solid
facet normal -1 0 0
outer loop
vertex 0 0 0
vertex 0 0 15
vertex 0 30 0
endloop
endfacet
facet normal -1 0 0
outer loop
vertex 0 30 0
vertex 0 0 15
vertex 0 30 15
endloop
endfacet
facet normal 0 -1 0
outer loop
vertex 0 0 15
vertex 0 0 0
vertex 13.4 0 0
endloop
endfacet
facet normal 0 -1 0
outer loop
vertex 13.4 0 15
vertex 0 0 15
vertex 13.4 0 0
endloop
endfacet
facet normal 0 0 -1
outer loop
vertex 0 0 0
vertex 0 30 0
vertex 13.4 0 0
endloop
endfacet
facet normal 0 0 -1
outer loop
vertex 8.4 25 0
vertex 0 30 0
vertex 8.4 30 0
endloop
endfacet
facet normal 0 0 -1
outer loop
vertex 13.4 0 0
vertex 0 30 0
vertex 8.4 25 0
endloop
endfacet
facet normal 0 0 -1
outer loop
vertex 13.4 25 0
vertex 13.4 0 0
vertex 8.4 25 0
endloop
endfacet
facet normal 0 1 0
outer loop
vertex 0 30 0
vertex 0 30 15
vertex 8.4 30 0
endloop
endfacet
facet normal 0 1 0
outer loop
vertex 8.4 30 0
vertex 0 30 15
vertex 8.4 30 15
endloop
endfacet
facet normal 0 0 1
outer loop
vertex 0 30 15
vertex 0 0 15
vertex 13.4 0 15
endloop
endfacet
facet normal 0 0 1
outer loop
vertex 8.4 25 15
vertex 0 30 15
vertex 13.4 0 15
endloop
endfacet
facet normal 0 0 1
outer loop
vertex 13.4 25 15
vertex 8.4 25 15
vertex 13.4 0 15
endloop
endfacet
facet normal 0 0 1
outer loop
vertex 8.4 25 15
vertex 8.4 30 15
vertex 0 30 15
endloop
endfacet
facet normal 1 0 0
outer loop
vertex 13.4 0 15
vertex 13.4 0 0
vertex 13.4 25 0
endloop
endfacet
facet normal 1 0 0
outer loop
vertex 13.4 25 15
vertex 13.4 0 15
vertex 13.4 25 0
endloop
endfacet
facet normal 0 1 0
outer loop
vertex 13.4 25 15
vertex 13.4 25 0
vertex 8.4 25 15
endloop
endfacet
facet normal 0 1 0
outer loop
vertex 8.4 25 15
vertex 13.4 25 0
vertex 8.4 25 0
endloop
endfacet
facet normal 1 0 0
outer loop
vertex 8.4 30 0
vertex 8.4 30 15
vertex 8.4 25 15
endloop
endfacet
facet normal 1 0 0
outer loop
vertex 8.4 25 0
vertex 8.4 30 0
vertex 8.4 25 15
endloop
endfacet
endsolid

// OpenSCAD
frame_width = 217;

pixel_width = 16.6;
pixel_wall = 1;
pixel_height = 20;

pixels_x = 12;
pixels_y = 10;

holder = 5;

difference() {
cube([(frame_width - pixel_width * pixels_x - pixel_wall) / 2 + holder, (frame_width - pixel_width * pixels_y - pixel_wall) / 2 + holder, pixel_height-5]);
translate([(frame_width - pixel_width * pixels_x - pixel_wall) / 2, (frame_width - pixel_width * pixels_y - pixel_wall) / 2, 0])
	cube([holder+1, holder+1, pixel_height-5]);
}
